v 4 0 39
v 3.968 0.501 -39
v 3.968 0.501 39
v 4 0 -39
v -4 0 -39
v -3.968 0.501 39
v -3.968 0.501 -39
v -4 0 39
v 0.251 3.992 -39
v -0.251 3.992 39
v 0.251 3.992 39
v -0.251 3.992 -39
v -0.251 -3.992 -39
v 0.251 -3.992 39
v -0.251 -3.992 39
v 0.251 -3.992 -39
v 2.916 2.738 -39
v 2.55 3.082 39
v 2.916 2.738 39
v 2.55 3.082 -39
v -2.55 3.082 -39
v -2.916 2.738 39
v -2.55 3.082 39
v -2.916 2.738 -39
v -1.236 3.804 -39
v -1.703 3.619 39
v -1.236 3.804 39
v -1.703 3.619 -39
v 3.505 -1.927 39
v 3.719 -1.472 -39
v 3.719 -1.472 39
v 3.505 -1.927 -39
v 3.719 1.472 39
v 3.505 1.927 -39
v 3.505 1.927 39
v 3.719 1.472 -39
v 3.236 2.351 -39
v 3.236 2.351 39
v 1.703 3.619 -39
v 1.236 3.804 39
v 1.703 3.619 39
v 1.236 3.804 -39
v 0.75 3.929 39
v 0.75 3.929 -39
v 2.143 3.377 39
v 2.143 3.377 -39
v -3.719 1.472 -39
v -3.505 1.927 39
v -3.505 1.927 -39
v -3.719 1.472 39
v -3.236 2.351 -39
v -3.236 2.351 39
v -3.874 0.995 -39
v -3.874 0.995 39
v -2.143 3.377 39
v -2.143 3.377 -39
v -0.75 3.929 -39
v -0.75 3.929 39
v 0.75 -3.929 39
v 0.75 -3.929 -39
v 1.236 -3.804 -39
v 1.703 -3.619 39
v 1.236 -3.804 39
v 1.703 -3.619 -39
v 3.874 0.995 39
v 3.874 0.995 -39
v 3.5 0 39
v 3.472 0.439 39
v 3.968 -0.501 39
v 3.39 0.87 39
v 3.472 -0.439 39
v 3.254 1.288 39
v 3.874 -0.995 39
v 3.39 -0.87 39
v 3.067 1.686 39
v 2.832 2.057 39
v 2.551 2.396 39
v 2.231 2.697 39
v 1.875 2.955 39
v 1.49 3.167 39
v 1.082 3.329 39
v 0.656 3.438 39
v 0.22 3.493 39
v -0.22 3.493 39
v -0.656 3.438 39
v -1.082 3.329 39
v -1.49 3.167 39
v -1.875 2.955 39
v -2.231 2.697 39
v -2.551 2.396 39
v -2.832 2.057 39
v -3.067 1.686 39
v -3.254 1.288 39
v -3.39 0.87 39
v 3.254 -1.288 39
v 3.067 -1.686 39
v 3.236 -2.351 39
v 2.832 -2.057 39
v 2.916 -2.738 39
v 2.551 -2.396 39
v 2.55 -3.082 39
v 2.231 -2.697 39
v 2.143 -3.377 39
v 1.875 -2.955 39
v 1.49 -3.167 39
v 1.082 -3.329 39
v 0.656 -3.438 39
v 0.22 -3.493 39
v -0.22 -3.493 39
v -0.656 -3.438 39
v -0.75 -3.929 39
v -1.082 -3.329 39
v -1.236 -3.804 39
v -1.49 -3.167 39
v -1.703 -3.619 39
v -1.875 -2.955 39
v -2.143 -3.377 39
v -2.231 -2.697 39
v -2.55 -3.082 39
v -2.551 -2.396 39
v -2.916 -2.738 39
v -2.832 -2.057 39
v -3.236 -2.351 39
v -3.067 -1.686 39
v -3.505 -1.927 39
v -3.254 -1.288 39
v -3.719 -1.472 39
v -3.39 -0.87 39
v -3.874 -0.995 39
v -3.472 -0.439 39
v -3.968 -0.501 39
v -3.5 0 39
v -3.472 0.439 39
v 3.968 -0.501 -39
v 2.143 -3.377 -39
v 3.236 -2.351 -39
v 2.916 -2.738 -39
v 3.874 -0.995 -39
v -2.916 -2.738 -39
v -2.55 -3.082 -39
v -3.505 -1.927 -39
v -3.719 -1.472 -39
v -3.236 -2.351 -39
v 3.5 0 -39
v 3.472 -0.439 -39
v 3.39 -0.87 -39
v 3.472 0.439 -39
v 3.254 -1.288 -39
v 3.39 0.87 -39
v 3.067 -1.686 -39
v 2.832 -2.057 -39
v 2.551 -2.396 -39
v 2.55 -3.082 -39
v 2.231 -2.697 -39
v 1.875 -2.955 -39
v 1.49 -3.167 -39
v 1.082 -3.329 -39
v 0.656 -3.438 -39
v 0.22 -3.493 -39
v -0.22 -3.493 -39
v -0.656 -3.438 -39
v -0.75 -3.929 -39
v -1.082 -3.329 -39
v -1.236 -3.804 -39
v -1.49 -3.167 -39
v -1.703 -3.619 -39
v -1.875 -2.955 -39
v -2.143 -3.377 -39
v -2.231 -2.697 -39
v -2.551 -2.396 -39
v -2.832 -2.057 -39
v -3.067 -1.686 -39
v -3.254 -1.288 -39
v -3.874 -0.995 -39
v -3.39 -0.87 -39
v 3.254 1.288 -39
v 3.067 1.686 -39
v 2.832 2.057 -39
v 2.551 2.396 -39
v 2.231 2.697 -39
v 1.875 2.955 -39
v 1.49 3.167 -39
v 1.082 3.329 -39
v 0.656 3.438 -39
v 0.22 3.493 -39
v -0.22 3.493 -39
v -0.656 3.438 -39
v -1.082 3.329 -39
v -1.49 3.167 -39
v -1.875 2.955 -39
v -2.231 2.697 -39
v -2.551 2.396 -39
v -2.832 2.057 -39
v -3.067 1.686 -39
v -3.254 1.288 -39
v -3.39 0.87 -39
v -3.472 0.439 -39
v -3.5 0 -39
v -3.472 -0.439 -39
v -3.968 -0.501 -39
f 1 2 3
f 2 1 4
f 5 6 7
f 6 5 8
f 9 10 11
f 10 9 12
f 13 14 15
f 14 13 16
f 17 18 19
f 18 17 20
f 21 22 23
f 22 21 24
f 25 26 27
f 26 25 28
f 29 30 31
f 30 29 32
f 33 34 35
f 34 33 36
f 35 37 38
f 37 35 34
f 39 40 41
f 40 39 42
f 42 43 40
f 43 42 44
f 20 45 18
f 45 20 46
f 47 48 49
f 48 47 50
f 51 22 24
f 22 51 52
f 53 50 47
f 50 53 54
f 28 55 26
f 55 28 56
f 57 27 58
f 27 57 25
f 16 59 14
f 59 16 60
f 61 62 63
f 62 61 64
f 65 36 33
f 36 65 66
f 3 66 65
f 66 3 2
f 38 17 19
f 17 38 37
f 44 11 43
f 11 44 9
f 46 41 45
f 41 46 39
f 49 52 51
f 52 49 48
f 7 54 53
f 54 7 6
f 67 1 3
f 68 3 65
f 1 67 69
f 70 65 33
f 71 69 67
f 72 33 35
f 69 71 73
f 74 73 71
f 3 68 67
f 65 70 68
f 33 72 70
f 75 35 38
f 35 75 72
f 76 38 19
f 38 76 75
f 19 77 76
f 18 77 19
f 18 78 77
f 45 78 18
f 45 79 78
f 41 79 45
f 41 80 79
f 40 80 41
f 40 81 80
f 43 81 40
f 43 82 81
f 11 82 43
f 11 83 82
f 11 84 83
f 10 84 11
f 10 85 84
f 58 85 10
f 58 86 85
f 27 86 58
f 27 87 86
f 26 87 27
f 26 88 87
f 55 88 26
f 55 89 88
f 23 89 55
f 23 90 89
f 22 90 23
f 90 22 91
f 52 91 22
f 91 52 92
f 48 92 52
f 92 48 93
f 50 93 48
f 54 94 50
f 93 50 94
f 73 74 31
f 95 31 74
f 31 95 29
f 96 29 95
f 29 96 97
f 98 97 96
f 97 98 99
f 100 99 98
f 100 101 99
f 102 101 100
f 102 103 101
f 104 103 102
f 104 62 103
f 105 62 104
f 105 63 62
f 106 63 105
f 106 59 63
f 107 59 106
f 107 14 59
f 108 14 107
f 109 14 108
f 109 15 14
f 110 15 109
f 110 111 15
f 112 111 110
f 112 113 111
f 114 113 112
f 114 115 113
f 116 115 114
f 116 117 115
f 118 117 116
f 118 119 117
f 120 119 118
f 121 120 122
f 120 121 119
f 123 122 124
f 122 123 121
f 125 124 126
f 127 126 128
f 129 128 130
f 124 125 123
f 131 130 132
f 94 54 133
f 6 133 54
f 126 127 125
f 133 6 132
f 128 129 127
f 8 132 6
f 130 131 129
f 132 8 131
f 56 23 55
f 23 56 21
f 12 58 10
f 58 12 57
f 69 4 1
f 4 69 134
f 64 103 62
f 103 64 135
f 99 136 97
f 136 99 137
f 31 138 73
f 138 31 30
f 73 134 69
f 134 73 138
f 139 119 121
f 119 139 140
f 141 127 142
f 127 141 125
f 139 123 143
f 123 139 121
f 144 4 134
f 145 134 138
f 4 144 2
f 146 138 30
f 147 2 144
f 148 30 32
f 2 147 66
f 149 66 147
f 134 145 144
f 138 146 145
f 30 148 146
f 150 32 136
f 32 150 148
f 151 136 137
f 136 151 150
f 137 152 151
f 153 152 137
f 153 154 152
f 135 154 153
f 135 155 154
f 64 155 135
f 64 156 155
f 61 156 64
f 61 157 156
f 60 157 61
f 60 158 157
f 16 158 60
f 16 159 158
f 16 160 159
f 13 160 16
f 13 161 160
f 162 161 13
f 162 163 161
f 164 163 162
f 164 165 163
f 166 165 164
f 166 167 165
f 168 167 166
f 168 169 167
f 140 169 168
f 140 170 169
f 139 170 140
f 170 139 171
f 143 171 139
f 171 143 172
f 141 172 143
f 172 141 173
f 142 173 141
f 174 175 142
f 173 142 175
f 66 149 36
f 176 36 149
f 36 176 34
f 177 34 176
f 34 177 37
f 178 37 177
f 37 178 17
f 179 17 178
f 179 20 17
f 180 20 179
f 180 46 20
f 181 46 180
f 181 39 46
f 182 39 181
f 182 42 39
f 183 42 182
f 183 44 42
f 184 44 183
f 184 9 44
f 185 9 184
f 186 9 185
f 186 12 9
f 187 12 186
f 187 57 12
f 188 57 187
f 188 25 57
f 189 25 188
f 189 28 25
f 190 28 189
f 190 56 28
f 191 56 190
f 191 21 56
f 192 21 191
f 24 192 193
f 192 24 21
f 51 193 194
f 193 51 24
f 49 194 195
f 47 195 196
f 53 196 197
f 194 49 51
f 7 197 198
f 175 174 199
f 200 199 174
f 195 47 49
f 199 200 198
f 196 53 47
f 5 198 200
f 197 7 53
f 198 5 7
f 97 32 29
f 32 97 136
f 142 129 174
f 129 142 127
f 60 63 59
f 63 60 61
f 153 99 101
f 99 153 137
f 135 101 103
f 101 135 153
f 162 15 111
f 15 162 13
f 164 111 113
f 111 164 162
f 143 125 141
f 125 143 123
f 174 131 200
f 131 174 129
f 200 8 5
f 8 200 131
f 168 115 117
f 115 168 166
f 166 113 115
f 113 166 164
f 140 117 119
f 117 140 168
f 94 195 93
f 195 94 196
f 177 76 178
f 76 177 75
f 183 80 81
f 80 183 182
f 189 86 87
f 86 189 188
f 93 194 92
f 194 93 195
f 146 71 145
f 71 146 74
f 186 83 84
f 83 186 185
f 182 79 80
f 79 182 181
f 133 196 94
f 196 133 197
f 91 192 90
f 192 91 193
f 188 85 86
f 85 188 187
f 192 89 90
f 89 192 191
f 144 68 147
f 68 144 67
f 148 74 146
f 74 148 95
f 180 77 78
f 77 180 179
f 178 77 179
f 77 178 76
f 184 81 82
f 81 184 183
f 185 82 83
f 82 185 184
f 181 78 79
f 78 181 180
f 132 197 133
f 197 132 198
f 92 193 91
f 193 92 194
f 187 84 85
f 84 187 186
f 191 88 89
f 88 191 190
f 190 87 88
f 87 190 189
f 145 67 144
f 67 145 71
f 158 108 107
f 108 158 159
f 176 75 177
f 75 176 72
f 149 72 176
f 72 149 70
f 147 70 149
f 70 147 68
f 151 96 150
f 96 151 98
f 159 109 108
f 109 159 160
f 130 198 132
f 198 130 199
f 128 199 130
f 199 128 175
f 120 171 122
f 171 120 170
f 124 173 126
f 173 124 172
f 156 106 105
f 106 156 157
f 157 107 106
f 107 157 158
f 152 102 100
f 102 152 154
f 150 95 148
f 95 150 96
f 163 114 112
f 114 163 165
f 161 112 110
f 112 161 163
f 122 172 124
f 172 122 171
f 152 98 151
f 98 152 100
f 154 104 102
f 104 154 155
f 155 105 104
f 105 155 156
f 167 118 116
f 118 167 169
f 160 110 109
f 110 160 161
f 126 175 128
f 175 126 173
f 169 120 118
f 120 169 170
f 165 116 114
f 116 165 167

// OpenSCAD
$fn = 50;


difference() {
	union() {
		translate(v = [0, 0, -39.0000000000]) {
			cylinder(h = 78, r = 4.0000000000);
		}
	}
	union() {
		translate(v = [0, 0, -100.0000000000]) {
			cylinder(h = 200, r = 3.5000000000);
		}
	}
}
